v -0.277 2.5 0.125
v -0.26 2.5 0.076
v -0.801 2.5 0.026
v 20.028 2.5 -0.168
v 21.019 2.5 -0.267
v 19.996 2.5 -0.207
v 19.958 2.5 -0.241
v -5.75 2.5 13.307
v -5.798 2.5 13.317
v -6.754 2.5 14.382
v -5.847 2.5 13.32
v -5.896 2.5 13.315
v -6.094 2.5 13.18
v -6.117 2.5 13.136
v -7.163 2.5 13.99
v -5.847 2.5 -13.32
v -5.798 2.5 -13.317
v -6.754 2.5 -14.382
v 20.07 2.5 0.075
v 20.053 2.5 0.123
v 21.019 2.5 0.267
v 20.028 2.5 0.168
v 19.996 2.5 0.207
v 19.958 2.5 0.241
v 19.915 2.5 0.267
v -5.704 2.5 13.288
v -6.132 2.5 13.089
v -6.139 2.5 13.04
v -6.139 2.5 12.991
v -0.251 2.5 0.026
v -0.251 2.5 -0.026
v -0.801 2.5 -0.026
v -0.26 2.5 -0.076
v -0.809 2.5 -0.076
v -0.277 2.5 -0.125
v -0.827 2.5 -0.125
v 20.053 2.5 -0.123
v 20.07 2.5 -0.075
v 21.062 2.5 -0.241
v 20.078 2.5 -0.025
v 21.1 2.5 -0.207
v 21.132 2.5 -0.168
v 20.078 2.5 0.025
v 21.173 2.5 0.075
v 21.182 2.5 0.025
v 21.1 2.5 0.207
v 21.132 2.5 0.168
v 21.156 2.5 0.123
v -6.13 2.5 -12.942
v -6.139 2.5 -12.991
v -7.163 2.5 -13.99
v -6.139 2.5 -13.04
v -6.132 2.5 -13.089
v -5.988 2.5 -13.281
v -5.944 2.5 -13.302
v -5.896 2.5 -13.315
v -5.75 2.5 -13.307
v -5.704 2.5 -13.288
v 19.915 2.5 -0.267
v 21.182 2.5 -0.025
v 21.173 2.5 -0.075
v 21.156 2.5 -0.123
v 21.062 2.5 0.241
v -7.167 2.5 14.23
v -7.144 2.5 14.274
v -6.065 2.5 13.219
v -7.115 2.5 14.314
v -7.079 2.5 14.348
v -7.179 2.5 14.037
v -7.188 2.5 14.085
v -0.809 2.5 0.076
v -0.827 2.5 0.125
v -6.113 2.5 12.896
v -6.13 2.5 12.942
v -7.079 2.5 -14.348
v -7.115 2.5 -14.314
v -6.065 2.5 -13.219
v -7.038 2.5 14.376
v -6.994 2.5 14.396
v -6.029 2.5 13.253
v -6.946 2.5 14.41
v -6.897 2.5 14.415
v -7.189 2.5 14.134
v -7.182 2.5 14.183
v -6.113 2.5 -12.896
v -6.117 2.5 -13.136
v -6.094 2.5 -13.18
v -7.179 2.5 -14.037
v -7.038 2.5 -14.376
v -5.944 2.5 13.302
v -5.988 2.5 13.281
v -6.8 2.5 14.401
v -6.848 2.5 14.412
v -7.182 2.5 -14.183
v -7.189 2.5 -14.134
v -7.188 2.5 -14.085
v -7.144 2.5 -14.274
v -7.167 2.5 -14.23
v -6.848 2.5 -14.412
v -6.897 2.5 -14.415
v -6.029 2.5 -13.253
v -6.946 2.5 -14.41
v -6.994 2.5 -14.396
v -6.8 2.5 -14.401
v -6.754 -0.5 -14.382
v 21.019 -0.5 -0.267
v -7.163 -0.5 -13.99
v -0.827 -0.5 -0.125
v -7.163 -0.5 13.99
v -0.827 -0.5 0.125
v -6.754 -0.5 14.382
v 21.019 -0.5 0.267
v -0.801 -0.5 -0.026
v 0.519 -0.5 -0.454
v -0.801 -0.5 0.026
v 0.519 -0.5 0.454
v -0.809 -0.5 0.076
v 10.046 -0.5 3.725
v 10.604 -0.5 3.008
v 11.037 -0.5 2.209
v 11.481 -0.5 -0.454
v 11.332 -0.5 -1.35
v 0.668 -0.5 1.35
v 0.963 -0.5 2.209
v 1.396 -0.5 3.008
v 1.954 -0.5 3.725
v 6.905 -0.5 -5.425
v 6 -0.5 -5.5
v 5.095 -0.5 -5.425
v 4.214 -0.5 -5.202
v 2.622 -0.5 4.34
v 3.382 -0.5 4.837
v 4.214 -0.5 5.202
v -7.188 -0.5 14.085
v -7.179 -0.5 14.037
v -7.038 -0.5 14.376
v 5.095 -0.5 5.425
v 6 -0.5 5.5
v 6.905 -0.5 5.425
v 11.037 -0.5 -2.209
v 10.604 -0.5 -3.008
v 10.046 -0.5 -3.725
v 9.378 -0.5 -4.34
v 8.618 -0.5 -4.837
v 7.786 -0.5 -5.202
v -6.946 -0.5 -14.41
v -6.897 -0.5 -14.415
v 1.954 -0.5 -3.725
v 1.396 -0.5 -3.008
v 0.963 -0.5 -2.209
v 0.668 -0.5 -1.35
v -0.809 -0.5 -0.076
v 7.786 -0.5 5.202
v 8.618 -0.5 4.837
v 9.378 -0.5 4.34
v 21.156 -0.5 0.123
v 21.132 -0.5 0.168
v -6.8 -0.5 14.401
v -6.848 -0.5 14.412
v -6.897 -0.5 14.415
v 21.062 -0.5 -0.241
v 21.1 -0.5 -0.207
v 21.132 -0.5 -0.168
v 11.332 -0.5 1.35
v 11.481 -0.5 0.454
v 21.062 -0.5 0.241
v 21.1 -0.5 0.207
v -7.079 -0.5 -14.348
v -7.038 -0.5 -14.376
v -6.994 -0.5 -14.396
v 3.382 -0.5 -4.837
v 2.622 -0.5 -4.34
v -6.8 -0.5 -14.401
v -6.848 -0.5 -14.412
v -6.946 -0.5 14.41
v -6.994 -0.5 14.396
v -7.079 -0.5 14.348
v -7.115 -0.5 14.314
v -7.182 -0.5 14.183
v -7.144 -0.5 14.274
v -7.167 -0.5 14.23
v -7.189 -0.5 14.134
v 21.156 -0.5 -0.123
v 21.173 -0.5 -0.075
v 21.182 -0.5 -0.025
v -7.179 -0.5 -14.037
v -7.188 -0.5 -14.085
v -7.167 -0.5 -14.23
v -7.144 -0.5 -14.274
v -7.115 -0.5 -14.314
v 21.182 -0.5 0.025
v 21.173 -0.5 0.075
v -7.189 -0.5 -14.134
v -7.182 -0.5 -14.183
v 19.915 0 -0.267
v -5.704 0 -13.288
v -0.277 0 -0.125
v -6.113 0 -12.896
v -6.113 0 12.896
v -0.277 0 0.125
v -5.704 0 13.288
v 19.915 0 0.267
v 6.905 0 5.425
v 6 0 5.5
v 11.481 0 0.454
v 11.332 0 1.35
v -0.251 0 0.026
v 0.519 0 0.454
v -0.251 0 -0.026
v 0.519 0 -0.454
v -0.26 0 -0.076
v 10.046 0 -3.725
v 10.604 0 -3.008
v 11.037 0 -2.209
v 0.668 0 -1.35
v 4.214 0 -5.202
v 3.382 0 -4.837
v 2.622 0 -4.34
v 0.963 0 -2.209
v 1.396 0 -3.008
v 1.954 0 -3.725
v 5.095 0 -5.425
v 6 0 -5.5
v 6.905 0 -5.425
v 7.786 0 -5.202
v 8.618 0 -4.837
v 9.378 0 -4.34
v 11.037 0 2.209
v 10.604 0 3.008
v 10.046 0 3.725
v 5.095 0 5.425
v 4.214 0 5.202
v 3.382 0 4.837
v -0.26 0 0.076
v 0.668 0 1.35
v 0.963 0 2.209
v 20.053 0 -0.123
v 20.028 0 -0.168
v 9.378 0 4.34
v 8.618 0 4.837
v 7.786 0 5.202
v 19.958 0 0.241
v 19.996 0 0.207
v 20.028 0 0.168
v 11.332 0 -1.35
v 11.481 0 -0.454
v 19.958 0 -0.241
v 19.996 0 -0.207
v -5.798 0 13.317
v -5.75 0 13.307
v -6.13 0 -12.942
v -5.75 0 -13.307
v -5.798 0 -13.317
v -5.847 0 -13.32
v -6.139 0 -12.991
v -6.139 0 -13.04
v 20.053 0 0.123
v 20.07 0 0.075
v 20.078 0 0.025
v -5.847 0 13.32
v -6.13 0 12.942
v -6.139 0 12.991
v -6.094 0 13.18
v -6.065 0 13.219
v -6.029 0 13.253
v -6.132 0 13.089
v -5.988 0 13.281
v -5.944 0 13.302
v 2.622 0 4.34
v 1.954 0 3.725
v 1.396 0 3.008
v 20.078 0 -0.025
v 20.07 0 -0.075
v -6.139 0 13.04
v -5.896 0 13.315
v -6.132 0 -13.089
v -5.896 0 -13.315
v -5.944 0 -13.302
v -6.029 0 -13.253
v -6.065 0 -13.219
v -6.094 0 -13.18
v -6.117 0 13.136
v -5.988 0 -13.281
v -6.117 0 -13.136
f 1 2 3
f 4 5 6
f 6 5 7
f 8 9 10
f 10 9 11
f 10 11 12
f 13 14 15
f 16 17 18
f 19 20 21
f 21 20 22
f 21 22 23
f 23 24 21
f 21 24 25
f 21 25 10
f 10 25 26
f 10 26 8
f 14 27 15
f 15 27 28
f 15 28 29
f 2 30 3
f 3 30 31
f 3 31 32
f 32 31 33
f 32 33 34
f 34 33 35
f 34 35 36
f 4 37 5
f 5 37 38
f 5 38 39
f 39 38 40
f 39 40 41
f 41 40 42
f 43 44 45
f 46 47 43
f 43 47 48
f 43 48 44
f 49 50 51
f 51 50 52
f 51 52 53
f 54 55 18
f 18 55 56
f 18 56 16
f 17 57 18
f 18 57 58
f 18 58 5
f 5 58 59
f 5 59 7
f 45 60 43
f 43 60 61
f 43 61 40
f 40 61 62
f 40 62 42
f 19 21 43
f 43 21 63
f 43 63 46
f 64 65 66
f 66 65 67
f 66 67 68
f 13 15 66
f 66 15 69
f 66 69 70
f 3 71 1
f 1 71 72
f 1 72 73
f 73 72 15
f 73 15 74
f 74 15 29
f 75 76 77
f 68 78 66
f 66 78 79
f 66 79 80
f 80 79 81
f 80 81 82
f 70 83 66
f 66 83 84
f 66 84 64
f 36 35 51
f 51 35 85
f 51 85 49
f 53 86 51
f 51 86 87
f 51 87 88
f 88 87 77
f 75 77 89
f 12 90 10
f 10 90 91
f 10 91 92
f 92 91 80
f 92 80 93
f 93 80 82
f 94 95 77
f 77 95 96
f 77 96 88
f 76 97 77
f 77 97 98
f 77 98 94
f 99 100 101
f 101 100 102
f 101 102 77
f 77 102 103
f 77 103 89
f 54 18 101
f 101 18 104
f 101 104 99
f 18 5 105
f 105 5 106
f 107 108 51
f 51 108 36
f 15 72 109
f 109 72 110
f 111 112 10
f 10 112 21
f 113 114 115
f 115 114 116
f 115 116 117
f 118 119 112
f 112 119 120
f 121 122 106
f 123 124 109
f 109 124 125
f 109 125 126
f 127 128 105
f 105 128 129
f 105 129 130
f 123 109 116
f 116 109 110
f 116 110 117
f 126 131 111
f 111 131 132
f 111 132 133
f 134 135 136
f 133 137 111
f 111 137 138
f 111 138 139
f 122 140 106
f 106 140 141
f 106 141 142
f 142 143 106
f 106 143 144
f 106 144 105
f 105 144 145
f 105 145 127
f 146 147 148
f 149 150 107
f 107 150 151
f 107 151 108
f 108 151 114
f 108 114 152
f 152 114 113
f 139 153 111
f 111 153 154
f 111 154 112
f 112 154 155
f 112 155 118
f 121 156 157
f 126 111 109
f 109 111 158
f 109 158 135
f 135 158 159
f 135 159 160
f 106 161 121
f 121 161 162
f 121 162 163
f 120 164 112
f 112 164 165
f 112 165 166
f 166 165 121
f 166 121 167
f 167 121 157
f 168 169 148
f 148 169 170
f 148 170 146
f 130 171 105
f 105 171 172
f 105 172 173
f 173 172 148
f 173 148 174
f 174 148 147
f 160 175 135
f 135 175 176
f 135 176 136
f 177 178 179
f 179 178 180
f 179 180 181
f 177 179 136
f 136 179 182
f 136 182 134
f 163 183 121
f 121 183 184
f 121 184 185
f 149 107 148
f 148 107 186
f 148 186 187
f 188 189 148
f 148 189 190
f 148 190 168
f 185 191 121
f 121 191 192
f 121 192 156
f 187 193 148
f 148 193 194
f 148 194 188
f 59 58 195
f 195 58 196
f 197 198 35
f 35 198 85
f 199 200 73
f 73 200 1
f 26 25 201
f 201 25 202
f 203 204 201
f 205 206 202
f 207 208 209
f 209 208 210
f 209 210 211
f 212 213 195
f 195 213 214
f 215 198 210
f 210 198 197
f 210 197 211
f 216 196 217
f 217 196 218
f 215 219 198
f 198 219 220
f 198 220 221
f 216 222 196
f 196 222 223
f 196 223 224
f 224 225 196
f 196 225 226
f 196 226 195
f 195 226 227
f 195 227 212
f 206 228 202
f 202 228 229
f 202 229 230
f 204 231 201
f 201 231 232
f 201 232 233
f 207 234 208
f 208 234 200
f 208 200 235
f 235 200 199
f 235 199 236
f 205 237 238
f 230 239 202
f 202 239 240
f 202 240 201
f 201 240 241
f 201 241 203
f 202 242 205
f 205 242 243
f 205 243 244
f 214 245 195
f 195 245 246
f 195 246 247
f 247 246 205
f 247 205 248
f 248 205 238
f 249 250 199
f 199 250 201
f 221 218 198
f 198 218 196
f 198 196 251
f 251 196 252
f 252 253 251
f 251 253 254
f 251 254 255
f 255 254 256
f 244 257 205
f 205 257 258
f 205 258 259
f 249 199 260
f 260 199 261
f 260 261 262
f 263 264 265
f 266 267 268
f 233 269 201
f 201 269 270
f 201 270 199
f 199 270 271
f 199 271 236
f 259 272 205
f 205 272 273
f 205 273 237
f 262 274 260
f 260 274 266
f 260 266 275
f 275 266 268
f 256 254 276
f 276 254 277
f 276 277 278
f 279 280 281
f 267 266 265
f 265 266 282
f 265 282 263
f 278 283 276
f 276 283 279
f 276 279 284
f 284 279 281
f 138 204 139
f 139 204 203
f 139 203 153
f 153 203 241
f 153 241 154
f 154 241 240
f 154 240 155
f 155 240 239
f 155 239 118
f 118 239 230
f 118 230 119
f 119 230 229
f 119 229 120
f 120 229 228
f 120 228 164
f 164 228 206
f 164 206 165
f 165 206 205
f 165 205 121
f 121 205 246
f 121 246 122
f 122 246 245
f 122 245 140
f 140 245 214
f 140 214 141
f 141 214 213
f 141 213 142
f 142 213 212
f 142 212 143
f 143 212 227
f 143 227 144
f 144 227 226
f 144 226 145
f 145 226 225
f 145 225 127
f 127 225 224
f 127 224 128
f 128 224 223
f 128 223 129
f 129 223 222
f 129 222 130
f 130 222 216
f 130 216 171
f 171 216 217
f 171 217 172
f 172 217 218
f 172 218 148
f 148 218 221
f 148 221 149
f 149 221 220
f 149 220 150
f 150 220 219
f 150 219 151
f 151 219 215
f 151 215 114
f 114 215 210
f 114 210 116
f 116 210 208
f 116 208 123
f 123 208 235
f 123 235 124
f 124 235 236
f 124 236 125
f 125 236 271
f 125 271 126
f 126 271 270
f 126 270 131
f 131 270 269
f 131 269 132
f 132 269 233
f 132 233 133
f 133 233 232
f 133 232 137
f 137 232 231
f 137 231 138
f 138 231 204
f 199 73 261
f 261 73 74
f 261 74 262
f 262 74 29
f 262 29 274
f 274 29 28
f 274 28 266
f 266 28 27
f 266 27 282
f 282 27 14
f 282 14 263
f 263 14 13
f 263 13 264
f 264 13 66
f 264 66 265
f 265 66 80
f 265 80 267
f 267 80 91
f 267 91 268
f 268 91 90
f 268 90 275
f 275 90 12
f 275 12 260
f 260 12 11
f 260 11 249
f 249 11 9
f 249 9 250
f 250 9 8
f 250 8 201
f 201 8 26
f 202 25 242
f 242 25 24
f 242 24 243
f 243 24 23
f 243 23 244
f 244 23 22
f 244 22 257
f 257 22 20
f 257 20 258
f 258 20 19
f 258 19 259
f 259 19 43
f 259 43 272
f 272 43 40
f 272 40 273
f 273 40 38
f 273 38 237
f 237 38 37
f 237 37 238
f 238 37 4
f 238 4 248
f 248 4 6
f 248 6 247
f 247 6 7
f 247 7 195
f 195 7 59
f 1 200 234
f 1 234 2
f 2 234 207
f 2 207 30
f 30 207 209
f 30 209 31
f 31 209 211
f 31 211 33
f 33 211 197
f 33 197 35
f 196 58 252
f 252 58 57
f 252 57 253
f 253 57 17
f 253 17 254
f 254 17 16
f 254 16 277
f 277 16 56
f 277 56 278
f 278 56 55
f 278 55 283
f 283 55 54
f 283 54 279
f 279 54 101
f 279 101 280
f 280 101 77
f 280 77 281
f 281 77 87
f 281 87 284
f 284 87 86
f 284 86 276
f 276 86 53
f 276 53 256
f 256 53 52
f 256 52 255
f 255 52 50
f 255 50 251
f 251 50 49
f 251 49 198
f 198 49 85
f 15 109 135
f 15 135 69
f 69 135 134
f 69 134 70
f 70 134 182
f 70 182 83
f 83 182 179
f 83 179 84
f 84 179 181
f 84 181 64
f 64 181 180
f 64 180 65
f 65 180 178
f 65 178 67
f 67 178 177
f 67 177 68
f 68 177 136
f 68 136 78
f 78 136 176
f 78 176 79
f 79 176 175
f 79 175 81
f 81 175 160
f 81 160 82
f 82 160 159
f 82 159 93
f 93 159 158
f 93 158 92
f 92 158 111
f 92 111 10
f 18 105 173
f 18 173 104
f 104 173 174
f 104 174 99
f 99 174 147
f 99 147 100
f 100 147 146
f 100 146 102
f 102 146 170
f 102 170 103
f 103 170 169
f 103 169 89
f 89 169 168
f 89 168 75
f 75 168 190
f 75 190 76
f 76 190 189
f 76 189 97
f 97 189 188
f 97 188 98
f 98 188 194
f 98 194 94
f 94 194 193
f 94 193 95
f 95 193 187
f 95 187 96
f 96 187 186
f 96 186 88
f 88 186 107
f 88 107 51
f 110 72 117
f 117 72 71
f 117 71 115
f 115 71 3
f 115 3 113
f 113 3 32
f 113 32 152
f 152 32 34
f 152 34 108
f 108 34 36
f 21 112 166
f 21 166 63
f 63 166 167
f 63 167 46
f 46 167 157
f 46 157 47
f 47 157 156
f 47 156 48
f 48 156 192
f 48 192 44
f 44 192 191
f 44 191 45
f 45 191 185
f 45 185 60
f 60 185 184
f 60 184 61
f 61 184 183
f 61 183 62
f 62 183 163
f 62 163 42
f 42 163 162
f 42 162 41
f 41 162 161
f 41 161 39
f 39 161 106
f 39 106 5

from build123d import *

# Parameters (mm, degrees)
SALIENTE_EXTRUIR1_DEPTH = 2.5
VACIADO1_T              = 0.5
CROQUIS3_R              = 5.5
CORTAR_EXTRUIR1_DEPTH   = 27.241879304
REDONDEO1_R             = 0.3


with BuildPart() as part:
    # Croquis2 → Saliente-Extruir1 (new body)
    with BuildSketch(Plane(origin=(0, 0, 0), x_dir=(1, 0, 0), z_dir=(0, 1, 0))):
        Polygon((-6.46994338, 13.677119477), (-0.219892949, 0), (-6.46994338, -13.677119477), (20.44143079, 0), align=None)
    extrude(amount=SALIENTE_EXTRUIR1_DEPTH)

    # Vaciado1
    vaciado1_openings = [part.faces().sort_by_distance(p)[0] for p in [
        (4.58386482, 2.5, 0),
    ]]
    offset(amount=VACIADO1_T, openings=vaciado1_openings, kind=Kind.INTERSECTION)

    # Croquis3 → Cortar-Extruir1 (cut, through all)
    with BuildSketch(Plane(origin=(0, 0, 0), x_dir=(1, 0, 0), z_dir=(0, 1, 0))):
        with Locations(Location((6, 0, 0), (0, 0, 270))):
            Circle(CROQUIS3_R)
    extrude(amount=-CORTAR_EXTRUIR1_DEPTH, mode=Mode.SUBTRACT)

    # Redondeo1
    redondeo1_edges = [part.edges().sort_by_distance(p)[0] for p in [
        (20.44143079, 1.25, 0),
        (-6.46994338, 1.25, -13.677119477),
        (-0.219892949, 1.25, 0),
        (-6.46994338, 1.25, 13.677119477),
        (21.545007766, 1, 0),
        (-7.519801831, 1, 14.771556106),
        (-0.769625322, 1, 0),
        (-7.519801831, 1, -14.771556106),
    ]]
    fillet(redondeo1_edges, radius=REDONDEO1_R)


solid = part.part
